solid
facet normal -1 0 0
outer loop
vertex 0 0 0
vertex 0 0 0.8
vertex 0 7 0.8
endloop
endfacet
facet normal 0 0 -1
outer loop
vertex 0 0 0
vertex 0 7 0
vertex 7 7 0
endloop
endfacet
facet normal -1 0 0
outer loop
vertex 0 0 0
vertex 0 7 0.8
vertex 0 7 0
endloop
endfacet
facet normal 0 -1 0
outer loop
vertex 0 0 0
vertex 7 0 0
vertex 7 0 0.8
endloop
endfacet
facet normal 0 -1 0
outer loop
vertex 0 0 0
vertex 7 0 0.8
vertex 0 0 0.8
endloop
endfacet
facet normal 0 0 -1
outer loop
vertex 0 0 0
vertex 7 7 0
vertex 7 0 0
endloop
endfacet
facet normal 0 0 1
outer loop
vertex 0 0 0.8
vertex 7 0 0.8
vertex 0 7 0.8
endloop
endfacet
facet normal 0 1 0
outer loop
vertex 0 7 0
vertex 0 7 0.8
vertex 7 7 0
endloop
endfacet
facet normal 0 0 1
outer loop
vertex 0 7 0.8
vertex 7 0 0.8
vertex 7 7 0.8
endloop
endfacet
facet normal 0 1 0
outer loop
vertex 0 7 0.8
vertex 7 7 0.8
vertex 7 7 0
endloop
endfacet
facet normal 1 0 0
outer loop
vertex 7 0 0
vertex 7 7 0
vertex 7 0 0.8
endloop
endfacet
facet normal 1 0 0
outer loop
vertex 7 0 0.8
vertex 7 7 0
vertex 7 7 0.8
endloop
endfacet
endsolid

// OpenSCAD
/* Warning, this is a very basic generator with a lot of approximation 
input data : [WFBGA, SXX, 7x7x0.8mm, 84, , C, C04-00390C]
generated by com.zoubworld.electronics.cad.model3d.Basic
Date : Sun Feb 15 10:50:48 CET 2026
*/

//body
color("black")
translate([0,0,0])
cube([7.0,7.0,0.8], center=false);
